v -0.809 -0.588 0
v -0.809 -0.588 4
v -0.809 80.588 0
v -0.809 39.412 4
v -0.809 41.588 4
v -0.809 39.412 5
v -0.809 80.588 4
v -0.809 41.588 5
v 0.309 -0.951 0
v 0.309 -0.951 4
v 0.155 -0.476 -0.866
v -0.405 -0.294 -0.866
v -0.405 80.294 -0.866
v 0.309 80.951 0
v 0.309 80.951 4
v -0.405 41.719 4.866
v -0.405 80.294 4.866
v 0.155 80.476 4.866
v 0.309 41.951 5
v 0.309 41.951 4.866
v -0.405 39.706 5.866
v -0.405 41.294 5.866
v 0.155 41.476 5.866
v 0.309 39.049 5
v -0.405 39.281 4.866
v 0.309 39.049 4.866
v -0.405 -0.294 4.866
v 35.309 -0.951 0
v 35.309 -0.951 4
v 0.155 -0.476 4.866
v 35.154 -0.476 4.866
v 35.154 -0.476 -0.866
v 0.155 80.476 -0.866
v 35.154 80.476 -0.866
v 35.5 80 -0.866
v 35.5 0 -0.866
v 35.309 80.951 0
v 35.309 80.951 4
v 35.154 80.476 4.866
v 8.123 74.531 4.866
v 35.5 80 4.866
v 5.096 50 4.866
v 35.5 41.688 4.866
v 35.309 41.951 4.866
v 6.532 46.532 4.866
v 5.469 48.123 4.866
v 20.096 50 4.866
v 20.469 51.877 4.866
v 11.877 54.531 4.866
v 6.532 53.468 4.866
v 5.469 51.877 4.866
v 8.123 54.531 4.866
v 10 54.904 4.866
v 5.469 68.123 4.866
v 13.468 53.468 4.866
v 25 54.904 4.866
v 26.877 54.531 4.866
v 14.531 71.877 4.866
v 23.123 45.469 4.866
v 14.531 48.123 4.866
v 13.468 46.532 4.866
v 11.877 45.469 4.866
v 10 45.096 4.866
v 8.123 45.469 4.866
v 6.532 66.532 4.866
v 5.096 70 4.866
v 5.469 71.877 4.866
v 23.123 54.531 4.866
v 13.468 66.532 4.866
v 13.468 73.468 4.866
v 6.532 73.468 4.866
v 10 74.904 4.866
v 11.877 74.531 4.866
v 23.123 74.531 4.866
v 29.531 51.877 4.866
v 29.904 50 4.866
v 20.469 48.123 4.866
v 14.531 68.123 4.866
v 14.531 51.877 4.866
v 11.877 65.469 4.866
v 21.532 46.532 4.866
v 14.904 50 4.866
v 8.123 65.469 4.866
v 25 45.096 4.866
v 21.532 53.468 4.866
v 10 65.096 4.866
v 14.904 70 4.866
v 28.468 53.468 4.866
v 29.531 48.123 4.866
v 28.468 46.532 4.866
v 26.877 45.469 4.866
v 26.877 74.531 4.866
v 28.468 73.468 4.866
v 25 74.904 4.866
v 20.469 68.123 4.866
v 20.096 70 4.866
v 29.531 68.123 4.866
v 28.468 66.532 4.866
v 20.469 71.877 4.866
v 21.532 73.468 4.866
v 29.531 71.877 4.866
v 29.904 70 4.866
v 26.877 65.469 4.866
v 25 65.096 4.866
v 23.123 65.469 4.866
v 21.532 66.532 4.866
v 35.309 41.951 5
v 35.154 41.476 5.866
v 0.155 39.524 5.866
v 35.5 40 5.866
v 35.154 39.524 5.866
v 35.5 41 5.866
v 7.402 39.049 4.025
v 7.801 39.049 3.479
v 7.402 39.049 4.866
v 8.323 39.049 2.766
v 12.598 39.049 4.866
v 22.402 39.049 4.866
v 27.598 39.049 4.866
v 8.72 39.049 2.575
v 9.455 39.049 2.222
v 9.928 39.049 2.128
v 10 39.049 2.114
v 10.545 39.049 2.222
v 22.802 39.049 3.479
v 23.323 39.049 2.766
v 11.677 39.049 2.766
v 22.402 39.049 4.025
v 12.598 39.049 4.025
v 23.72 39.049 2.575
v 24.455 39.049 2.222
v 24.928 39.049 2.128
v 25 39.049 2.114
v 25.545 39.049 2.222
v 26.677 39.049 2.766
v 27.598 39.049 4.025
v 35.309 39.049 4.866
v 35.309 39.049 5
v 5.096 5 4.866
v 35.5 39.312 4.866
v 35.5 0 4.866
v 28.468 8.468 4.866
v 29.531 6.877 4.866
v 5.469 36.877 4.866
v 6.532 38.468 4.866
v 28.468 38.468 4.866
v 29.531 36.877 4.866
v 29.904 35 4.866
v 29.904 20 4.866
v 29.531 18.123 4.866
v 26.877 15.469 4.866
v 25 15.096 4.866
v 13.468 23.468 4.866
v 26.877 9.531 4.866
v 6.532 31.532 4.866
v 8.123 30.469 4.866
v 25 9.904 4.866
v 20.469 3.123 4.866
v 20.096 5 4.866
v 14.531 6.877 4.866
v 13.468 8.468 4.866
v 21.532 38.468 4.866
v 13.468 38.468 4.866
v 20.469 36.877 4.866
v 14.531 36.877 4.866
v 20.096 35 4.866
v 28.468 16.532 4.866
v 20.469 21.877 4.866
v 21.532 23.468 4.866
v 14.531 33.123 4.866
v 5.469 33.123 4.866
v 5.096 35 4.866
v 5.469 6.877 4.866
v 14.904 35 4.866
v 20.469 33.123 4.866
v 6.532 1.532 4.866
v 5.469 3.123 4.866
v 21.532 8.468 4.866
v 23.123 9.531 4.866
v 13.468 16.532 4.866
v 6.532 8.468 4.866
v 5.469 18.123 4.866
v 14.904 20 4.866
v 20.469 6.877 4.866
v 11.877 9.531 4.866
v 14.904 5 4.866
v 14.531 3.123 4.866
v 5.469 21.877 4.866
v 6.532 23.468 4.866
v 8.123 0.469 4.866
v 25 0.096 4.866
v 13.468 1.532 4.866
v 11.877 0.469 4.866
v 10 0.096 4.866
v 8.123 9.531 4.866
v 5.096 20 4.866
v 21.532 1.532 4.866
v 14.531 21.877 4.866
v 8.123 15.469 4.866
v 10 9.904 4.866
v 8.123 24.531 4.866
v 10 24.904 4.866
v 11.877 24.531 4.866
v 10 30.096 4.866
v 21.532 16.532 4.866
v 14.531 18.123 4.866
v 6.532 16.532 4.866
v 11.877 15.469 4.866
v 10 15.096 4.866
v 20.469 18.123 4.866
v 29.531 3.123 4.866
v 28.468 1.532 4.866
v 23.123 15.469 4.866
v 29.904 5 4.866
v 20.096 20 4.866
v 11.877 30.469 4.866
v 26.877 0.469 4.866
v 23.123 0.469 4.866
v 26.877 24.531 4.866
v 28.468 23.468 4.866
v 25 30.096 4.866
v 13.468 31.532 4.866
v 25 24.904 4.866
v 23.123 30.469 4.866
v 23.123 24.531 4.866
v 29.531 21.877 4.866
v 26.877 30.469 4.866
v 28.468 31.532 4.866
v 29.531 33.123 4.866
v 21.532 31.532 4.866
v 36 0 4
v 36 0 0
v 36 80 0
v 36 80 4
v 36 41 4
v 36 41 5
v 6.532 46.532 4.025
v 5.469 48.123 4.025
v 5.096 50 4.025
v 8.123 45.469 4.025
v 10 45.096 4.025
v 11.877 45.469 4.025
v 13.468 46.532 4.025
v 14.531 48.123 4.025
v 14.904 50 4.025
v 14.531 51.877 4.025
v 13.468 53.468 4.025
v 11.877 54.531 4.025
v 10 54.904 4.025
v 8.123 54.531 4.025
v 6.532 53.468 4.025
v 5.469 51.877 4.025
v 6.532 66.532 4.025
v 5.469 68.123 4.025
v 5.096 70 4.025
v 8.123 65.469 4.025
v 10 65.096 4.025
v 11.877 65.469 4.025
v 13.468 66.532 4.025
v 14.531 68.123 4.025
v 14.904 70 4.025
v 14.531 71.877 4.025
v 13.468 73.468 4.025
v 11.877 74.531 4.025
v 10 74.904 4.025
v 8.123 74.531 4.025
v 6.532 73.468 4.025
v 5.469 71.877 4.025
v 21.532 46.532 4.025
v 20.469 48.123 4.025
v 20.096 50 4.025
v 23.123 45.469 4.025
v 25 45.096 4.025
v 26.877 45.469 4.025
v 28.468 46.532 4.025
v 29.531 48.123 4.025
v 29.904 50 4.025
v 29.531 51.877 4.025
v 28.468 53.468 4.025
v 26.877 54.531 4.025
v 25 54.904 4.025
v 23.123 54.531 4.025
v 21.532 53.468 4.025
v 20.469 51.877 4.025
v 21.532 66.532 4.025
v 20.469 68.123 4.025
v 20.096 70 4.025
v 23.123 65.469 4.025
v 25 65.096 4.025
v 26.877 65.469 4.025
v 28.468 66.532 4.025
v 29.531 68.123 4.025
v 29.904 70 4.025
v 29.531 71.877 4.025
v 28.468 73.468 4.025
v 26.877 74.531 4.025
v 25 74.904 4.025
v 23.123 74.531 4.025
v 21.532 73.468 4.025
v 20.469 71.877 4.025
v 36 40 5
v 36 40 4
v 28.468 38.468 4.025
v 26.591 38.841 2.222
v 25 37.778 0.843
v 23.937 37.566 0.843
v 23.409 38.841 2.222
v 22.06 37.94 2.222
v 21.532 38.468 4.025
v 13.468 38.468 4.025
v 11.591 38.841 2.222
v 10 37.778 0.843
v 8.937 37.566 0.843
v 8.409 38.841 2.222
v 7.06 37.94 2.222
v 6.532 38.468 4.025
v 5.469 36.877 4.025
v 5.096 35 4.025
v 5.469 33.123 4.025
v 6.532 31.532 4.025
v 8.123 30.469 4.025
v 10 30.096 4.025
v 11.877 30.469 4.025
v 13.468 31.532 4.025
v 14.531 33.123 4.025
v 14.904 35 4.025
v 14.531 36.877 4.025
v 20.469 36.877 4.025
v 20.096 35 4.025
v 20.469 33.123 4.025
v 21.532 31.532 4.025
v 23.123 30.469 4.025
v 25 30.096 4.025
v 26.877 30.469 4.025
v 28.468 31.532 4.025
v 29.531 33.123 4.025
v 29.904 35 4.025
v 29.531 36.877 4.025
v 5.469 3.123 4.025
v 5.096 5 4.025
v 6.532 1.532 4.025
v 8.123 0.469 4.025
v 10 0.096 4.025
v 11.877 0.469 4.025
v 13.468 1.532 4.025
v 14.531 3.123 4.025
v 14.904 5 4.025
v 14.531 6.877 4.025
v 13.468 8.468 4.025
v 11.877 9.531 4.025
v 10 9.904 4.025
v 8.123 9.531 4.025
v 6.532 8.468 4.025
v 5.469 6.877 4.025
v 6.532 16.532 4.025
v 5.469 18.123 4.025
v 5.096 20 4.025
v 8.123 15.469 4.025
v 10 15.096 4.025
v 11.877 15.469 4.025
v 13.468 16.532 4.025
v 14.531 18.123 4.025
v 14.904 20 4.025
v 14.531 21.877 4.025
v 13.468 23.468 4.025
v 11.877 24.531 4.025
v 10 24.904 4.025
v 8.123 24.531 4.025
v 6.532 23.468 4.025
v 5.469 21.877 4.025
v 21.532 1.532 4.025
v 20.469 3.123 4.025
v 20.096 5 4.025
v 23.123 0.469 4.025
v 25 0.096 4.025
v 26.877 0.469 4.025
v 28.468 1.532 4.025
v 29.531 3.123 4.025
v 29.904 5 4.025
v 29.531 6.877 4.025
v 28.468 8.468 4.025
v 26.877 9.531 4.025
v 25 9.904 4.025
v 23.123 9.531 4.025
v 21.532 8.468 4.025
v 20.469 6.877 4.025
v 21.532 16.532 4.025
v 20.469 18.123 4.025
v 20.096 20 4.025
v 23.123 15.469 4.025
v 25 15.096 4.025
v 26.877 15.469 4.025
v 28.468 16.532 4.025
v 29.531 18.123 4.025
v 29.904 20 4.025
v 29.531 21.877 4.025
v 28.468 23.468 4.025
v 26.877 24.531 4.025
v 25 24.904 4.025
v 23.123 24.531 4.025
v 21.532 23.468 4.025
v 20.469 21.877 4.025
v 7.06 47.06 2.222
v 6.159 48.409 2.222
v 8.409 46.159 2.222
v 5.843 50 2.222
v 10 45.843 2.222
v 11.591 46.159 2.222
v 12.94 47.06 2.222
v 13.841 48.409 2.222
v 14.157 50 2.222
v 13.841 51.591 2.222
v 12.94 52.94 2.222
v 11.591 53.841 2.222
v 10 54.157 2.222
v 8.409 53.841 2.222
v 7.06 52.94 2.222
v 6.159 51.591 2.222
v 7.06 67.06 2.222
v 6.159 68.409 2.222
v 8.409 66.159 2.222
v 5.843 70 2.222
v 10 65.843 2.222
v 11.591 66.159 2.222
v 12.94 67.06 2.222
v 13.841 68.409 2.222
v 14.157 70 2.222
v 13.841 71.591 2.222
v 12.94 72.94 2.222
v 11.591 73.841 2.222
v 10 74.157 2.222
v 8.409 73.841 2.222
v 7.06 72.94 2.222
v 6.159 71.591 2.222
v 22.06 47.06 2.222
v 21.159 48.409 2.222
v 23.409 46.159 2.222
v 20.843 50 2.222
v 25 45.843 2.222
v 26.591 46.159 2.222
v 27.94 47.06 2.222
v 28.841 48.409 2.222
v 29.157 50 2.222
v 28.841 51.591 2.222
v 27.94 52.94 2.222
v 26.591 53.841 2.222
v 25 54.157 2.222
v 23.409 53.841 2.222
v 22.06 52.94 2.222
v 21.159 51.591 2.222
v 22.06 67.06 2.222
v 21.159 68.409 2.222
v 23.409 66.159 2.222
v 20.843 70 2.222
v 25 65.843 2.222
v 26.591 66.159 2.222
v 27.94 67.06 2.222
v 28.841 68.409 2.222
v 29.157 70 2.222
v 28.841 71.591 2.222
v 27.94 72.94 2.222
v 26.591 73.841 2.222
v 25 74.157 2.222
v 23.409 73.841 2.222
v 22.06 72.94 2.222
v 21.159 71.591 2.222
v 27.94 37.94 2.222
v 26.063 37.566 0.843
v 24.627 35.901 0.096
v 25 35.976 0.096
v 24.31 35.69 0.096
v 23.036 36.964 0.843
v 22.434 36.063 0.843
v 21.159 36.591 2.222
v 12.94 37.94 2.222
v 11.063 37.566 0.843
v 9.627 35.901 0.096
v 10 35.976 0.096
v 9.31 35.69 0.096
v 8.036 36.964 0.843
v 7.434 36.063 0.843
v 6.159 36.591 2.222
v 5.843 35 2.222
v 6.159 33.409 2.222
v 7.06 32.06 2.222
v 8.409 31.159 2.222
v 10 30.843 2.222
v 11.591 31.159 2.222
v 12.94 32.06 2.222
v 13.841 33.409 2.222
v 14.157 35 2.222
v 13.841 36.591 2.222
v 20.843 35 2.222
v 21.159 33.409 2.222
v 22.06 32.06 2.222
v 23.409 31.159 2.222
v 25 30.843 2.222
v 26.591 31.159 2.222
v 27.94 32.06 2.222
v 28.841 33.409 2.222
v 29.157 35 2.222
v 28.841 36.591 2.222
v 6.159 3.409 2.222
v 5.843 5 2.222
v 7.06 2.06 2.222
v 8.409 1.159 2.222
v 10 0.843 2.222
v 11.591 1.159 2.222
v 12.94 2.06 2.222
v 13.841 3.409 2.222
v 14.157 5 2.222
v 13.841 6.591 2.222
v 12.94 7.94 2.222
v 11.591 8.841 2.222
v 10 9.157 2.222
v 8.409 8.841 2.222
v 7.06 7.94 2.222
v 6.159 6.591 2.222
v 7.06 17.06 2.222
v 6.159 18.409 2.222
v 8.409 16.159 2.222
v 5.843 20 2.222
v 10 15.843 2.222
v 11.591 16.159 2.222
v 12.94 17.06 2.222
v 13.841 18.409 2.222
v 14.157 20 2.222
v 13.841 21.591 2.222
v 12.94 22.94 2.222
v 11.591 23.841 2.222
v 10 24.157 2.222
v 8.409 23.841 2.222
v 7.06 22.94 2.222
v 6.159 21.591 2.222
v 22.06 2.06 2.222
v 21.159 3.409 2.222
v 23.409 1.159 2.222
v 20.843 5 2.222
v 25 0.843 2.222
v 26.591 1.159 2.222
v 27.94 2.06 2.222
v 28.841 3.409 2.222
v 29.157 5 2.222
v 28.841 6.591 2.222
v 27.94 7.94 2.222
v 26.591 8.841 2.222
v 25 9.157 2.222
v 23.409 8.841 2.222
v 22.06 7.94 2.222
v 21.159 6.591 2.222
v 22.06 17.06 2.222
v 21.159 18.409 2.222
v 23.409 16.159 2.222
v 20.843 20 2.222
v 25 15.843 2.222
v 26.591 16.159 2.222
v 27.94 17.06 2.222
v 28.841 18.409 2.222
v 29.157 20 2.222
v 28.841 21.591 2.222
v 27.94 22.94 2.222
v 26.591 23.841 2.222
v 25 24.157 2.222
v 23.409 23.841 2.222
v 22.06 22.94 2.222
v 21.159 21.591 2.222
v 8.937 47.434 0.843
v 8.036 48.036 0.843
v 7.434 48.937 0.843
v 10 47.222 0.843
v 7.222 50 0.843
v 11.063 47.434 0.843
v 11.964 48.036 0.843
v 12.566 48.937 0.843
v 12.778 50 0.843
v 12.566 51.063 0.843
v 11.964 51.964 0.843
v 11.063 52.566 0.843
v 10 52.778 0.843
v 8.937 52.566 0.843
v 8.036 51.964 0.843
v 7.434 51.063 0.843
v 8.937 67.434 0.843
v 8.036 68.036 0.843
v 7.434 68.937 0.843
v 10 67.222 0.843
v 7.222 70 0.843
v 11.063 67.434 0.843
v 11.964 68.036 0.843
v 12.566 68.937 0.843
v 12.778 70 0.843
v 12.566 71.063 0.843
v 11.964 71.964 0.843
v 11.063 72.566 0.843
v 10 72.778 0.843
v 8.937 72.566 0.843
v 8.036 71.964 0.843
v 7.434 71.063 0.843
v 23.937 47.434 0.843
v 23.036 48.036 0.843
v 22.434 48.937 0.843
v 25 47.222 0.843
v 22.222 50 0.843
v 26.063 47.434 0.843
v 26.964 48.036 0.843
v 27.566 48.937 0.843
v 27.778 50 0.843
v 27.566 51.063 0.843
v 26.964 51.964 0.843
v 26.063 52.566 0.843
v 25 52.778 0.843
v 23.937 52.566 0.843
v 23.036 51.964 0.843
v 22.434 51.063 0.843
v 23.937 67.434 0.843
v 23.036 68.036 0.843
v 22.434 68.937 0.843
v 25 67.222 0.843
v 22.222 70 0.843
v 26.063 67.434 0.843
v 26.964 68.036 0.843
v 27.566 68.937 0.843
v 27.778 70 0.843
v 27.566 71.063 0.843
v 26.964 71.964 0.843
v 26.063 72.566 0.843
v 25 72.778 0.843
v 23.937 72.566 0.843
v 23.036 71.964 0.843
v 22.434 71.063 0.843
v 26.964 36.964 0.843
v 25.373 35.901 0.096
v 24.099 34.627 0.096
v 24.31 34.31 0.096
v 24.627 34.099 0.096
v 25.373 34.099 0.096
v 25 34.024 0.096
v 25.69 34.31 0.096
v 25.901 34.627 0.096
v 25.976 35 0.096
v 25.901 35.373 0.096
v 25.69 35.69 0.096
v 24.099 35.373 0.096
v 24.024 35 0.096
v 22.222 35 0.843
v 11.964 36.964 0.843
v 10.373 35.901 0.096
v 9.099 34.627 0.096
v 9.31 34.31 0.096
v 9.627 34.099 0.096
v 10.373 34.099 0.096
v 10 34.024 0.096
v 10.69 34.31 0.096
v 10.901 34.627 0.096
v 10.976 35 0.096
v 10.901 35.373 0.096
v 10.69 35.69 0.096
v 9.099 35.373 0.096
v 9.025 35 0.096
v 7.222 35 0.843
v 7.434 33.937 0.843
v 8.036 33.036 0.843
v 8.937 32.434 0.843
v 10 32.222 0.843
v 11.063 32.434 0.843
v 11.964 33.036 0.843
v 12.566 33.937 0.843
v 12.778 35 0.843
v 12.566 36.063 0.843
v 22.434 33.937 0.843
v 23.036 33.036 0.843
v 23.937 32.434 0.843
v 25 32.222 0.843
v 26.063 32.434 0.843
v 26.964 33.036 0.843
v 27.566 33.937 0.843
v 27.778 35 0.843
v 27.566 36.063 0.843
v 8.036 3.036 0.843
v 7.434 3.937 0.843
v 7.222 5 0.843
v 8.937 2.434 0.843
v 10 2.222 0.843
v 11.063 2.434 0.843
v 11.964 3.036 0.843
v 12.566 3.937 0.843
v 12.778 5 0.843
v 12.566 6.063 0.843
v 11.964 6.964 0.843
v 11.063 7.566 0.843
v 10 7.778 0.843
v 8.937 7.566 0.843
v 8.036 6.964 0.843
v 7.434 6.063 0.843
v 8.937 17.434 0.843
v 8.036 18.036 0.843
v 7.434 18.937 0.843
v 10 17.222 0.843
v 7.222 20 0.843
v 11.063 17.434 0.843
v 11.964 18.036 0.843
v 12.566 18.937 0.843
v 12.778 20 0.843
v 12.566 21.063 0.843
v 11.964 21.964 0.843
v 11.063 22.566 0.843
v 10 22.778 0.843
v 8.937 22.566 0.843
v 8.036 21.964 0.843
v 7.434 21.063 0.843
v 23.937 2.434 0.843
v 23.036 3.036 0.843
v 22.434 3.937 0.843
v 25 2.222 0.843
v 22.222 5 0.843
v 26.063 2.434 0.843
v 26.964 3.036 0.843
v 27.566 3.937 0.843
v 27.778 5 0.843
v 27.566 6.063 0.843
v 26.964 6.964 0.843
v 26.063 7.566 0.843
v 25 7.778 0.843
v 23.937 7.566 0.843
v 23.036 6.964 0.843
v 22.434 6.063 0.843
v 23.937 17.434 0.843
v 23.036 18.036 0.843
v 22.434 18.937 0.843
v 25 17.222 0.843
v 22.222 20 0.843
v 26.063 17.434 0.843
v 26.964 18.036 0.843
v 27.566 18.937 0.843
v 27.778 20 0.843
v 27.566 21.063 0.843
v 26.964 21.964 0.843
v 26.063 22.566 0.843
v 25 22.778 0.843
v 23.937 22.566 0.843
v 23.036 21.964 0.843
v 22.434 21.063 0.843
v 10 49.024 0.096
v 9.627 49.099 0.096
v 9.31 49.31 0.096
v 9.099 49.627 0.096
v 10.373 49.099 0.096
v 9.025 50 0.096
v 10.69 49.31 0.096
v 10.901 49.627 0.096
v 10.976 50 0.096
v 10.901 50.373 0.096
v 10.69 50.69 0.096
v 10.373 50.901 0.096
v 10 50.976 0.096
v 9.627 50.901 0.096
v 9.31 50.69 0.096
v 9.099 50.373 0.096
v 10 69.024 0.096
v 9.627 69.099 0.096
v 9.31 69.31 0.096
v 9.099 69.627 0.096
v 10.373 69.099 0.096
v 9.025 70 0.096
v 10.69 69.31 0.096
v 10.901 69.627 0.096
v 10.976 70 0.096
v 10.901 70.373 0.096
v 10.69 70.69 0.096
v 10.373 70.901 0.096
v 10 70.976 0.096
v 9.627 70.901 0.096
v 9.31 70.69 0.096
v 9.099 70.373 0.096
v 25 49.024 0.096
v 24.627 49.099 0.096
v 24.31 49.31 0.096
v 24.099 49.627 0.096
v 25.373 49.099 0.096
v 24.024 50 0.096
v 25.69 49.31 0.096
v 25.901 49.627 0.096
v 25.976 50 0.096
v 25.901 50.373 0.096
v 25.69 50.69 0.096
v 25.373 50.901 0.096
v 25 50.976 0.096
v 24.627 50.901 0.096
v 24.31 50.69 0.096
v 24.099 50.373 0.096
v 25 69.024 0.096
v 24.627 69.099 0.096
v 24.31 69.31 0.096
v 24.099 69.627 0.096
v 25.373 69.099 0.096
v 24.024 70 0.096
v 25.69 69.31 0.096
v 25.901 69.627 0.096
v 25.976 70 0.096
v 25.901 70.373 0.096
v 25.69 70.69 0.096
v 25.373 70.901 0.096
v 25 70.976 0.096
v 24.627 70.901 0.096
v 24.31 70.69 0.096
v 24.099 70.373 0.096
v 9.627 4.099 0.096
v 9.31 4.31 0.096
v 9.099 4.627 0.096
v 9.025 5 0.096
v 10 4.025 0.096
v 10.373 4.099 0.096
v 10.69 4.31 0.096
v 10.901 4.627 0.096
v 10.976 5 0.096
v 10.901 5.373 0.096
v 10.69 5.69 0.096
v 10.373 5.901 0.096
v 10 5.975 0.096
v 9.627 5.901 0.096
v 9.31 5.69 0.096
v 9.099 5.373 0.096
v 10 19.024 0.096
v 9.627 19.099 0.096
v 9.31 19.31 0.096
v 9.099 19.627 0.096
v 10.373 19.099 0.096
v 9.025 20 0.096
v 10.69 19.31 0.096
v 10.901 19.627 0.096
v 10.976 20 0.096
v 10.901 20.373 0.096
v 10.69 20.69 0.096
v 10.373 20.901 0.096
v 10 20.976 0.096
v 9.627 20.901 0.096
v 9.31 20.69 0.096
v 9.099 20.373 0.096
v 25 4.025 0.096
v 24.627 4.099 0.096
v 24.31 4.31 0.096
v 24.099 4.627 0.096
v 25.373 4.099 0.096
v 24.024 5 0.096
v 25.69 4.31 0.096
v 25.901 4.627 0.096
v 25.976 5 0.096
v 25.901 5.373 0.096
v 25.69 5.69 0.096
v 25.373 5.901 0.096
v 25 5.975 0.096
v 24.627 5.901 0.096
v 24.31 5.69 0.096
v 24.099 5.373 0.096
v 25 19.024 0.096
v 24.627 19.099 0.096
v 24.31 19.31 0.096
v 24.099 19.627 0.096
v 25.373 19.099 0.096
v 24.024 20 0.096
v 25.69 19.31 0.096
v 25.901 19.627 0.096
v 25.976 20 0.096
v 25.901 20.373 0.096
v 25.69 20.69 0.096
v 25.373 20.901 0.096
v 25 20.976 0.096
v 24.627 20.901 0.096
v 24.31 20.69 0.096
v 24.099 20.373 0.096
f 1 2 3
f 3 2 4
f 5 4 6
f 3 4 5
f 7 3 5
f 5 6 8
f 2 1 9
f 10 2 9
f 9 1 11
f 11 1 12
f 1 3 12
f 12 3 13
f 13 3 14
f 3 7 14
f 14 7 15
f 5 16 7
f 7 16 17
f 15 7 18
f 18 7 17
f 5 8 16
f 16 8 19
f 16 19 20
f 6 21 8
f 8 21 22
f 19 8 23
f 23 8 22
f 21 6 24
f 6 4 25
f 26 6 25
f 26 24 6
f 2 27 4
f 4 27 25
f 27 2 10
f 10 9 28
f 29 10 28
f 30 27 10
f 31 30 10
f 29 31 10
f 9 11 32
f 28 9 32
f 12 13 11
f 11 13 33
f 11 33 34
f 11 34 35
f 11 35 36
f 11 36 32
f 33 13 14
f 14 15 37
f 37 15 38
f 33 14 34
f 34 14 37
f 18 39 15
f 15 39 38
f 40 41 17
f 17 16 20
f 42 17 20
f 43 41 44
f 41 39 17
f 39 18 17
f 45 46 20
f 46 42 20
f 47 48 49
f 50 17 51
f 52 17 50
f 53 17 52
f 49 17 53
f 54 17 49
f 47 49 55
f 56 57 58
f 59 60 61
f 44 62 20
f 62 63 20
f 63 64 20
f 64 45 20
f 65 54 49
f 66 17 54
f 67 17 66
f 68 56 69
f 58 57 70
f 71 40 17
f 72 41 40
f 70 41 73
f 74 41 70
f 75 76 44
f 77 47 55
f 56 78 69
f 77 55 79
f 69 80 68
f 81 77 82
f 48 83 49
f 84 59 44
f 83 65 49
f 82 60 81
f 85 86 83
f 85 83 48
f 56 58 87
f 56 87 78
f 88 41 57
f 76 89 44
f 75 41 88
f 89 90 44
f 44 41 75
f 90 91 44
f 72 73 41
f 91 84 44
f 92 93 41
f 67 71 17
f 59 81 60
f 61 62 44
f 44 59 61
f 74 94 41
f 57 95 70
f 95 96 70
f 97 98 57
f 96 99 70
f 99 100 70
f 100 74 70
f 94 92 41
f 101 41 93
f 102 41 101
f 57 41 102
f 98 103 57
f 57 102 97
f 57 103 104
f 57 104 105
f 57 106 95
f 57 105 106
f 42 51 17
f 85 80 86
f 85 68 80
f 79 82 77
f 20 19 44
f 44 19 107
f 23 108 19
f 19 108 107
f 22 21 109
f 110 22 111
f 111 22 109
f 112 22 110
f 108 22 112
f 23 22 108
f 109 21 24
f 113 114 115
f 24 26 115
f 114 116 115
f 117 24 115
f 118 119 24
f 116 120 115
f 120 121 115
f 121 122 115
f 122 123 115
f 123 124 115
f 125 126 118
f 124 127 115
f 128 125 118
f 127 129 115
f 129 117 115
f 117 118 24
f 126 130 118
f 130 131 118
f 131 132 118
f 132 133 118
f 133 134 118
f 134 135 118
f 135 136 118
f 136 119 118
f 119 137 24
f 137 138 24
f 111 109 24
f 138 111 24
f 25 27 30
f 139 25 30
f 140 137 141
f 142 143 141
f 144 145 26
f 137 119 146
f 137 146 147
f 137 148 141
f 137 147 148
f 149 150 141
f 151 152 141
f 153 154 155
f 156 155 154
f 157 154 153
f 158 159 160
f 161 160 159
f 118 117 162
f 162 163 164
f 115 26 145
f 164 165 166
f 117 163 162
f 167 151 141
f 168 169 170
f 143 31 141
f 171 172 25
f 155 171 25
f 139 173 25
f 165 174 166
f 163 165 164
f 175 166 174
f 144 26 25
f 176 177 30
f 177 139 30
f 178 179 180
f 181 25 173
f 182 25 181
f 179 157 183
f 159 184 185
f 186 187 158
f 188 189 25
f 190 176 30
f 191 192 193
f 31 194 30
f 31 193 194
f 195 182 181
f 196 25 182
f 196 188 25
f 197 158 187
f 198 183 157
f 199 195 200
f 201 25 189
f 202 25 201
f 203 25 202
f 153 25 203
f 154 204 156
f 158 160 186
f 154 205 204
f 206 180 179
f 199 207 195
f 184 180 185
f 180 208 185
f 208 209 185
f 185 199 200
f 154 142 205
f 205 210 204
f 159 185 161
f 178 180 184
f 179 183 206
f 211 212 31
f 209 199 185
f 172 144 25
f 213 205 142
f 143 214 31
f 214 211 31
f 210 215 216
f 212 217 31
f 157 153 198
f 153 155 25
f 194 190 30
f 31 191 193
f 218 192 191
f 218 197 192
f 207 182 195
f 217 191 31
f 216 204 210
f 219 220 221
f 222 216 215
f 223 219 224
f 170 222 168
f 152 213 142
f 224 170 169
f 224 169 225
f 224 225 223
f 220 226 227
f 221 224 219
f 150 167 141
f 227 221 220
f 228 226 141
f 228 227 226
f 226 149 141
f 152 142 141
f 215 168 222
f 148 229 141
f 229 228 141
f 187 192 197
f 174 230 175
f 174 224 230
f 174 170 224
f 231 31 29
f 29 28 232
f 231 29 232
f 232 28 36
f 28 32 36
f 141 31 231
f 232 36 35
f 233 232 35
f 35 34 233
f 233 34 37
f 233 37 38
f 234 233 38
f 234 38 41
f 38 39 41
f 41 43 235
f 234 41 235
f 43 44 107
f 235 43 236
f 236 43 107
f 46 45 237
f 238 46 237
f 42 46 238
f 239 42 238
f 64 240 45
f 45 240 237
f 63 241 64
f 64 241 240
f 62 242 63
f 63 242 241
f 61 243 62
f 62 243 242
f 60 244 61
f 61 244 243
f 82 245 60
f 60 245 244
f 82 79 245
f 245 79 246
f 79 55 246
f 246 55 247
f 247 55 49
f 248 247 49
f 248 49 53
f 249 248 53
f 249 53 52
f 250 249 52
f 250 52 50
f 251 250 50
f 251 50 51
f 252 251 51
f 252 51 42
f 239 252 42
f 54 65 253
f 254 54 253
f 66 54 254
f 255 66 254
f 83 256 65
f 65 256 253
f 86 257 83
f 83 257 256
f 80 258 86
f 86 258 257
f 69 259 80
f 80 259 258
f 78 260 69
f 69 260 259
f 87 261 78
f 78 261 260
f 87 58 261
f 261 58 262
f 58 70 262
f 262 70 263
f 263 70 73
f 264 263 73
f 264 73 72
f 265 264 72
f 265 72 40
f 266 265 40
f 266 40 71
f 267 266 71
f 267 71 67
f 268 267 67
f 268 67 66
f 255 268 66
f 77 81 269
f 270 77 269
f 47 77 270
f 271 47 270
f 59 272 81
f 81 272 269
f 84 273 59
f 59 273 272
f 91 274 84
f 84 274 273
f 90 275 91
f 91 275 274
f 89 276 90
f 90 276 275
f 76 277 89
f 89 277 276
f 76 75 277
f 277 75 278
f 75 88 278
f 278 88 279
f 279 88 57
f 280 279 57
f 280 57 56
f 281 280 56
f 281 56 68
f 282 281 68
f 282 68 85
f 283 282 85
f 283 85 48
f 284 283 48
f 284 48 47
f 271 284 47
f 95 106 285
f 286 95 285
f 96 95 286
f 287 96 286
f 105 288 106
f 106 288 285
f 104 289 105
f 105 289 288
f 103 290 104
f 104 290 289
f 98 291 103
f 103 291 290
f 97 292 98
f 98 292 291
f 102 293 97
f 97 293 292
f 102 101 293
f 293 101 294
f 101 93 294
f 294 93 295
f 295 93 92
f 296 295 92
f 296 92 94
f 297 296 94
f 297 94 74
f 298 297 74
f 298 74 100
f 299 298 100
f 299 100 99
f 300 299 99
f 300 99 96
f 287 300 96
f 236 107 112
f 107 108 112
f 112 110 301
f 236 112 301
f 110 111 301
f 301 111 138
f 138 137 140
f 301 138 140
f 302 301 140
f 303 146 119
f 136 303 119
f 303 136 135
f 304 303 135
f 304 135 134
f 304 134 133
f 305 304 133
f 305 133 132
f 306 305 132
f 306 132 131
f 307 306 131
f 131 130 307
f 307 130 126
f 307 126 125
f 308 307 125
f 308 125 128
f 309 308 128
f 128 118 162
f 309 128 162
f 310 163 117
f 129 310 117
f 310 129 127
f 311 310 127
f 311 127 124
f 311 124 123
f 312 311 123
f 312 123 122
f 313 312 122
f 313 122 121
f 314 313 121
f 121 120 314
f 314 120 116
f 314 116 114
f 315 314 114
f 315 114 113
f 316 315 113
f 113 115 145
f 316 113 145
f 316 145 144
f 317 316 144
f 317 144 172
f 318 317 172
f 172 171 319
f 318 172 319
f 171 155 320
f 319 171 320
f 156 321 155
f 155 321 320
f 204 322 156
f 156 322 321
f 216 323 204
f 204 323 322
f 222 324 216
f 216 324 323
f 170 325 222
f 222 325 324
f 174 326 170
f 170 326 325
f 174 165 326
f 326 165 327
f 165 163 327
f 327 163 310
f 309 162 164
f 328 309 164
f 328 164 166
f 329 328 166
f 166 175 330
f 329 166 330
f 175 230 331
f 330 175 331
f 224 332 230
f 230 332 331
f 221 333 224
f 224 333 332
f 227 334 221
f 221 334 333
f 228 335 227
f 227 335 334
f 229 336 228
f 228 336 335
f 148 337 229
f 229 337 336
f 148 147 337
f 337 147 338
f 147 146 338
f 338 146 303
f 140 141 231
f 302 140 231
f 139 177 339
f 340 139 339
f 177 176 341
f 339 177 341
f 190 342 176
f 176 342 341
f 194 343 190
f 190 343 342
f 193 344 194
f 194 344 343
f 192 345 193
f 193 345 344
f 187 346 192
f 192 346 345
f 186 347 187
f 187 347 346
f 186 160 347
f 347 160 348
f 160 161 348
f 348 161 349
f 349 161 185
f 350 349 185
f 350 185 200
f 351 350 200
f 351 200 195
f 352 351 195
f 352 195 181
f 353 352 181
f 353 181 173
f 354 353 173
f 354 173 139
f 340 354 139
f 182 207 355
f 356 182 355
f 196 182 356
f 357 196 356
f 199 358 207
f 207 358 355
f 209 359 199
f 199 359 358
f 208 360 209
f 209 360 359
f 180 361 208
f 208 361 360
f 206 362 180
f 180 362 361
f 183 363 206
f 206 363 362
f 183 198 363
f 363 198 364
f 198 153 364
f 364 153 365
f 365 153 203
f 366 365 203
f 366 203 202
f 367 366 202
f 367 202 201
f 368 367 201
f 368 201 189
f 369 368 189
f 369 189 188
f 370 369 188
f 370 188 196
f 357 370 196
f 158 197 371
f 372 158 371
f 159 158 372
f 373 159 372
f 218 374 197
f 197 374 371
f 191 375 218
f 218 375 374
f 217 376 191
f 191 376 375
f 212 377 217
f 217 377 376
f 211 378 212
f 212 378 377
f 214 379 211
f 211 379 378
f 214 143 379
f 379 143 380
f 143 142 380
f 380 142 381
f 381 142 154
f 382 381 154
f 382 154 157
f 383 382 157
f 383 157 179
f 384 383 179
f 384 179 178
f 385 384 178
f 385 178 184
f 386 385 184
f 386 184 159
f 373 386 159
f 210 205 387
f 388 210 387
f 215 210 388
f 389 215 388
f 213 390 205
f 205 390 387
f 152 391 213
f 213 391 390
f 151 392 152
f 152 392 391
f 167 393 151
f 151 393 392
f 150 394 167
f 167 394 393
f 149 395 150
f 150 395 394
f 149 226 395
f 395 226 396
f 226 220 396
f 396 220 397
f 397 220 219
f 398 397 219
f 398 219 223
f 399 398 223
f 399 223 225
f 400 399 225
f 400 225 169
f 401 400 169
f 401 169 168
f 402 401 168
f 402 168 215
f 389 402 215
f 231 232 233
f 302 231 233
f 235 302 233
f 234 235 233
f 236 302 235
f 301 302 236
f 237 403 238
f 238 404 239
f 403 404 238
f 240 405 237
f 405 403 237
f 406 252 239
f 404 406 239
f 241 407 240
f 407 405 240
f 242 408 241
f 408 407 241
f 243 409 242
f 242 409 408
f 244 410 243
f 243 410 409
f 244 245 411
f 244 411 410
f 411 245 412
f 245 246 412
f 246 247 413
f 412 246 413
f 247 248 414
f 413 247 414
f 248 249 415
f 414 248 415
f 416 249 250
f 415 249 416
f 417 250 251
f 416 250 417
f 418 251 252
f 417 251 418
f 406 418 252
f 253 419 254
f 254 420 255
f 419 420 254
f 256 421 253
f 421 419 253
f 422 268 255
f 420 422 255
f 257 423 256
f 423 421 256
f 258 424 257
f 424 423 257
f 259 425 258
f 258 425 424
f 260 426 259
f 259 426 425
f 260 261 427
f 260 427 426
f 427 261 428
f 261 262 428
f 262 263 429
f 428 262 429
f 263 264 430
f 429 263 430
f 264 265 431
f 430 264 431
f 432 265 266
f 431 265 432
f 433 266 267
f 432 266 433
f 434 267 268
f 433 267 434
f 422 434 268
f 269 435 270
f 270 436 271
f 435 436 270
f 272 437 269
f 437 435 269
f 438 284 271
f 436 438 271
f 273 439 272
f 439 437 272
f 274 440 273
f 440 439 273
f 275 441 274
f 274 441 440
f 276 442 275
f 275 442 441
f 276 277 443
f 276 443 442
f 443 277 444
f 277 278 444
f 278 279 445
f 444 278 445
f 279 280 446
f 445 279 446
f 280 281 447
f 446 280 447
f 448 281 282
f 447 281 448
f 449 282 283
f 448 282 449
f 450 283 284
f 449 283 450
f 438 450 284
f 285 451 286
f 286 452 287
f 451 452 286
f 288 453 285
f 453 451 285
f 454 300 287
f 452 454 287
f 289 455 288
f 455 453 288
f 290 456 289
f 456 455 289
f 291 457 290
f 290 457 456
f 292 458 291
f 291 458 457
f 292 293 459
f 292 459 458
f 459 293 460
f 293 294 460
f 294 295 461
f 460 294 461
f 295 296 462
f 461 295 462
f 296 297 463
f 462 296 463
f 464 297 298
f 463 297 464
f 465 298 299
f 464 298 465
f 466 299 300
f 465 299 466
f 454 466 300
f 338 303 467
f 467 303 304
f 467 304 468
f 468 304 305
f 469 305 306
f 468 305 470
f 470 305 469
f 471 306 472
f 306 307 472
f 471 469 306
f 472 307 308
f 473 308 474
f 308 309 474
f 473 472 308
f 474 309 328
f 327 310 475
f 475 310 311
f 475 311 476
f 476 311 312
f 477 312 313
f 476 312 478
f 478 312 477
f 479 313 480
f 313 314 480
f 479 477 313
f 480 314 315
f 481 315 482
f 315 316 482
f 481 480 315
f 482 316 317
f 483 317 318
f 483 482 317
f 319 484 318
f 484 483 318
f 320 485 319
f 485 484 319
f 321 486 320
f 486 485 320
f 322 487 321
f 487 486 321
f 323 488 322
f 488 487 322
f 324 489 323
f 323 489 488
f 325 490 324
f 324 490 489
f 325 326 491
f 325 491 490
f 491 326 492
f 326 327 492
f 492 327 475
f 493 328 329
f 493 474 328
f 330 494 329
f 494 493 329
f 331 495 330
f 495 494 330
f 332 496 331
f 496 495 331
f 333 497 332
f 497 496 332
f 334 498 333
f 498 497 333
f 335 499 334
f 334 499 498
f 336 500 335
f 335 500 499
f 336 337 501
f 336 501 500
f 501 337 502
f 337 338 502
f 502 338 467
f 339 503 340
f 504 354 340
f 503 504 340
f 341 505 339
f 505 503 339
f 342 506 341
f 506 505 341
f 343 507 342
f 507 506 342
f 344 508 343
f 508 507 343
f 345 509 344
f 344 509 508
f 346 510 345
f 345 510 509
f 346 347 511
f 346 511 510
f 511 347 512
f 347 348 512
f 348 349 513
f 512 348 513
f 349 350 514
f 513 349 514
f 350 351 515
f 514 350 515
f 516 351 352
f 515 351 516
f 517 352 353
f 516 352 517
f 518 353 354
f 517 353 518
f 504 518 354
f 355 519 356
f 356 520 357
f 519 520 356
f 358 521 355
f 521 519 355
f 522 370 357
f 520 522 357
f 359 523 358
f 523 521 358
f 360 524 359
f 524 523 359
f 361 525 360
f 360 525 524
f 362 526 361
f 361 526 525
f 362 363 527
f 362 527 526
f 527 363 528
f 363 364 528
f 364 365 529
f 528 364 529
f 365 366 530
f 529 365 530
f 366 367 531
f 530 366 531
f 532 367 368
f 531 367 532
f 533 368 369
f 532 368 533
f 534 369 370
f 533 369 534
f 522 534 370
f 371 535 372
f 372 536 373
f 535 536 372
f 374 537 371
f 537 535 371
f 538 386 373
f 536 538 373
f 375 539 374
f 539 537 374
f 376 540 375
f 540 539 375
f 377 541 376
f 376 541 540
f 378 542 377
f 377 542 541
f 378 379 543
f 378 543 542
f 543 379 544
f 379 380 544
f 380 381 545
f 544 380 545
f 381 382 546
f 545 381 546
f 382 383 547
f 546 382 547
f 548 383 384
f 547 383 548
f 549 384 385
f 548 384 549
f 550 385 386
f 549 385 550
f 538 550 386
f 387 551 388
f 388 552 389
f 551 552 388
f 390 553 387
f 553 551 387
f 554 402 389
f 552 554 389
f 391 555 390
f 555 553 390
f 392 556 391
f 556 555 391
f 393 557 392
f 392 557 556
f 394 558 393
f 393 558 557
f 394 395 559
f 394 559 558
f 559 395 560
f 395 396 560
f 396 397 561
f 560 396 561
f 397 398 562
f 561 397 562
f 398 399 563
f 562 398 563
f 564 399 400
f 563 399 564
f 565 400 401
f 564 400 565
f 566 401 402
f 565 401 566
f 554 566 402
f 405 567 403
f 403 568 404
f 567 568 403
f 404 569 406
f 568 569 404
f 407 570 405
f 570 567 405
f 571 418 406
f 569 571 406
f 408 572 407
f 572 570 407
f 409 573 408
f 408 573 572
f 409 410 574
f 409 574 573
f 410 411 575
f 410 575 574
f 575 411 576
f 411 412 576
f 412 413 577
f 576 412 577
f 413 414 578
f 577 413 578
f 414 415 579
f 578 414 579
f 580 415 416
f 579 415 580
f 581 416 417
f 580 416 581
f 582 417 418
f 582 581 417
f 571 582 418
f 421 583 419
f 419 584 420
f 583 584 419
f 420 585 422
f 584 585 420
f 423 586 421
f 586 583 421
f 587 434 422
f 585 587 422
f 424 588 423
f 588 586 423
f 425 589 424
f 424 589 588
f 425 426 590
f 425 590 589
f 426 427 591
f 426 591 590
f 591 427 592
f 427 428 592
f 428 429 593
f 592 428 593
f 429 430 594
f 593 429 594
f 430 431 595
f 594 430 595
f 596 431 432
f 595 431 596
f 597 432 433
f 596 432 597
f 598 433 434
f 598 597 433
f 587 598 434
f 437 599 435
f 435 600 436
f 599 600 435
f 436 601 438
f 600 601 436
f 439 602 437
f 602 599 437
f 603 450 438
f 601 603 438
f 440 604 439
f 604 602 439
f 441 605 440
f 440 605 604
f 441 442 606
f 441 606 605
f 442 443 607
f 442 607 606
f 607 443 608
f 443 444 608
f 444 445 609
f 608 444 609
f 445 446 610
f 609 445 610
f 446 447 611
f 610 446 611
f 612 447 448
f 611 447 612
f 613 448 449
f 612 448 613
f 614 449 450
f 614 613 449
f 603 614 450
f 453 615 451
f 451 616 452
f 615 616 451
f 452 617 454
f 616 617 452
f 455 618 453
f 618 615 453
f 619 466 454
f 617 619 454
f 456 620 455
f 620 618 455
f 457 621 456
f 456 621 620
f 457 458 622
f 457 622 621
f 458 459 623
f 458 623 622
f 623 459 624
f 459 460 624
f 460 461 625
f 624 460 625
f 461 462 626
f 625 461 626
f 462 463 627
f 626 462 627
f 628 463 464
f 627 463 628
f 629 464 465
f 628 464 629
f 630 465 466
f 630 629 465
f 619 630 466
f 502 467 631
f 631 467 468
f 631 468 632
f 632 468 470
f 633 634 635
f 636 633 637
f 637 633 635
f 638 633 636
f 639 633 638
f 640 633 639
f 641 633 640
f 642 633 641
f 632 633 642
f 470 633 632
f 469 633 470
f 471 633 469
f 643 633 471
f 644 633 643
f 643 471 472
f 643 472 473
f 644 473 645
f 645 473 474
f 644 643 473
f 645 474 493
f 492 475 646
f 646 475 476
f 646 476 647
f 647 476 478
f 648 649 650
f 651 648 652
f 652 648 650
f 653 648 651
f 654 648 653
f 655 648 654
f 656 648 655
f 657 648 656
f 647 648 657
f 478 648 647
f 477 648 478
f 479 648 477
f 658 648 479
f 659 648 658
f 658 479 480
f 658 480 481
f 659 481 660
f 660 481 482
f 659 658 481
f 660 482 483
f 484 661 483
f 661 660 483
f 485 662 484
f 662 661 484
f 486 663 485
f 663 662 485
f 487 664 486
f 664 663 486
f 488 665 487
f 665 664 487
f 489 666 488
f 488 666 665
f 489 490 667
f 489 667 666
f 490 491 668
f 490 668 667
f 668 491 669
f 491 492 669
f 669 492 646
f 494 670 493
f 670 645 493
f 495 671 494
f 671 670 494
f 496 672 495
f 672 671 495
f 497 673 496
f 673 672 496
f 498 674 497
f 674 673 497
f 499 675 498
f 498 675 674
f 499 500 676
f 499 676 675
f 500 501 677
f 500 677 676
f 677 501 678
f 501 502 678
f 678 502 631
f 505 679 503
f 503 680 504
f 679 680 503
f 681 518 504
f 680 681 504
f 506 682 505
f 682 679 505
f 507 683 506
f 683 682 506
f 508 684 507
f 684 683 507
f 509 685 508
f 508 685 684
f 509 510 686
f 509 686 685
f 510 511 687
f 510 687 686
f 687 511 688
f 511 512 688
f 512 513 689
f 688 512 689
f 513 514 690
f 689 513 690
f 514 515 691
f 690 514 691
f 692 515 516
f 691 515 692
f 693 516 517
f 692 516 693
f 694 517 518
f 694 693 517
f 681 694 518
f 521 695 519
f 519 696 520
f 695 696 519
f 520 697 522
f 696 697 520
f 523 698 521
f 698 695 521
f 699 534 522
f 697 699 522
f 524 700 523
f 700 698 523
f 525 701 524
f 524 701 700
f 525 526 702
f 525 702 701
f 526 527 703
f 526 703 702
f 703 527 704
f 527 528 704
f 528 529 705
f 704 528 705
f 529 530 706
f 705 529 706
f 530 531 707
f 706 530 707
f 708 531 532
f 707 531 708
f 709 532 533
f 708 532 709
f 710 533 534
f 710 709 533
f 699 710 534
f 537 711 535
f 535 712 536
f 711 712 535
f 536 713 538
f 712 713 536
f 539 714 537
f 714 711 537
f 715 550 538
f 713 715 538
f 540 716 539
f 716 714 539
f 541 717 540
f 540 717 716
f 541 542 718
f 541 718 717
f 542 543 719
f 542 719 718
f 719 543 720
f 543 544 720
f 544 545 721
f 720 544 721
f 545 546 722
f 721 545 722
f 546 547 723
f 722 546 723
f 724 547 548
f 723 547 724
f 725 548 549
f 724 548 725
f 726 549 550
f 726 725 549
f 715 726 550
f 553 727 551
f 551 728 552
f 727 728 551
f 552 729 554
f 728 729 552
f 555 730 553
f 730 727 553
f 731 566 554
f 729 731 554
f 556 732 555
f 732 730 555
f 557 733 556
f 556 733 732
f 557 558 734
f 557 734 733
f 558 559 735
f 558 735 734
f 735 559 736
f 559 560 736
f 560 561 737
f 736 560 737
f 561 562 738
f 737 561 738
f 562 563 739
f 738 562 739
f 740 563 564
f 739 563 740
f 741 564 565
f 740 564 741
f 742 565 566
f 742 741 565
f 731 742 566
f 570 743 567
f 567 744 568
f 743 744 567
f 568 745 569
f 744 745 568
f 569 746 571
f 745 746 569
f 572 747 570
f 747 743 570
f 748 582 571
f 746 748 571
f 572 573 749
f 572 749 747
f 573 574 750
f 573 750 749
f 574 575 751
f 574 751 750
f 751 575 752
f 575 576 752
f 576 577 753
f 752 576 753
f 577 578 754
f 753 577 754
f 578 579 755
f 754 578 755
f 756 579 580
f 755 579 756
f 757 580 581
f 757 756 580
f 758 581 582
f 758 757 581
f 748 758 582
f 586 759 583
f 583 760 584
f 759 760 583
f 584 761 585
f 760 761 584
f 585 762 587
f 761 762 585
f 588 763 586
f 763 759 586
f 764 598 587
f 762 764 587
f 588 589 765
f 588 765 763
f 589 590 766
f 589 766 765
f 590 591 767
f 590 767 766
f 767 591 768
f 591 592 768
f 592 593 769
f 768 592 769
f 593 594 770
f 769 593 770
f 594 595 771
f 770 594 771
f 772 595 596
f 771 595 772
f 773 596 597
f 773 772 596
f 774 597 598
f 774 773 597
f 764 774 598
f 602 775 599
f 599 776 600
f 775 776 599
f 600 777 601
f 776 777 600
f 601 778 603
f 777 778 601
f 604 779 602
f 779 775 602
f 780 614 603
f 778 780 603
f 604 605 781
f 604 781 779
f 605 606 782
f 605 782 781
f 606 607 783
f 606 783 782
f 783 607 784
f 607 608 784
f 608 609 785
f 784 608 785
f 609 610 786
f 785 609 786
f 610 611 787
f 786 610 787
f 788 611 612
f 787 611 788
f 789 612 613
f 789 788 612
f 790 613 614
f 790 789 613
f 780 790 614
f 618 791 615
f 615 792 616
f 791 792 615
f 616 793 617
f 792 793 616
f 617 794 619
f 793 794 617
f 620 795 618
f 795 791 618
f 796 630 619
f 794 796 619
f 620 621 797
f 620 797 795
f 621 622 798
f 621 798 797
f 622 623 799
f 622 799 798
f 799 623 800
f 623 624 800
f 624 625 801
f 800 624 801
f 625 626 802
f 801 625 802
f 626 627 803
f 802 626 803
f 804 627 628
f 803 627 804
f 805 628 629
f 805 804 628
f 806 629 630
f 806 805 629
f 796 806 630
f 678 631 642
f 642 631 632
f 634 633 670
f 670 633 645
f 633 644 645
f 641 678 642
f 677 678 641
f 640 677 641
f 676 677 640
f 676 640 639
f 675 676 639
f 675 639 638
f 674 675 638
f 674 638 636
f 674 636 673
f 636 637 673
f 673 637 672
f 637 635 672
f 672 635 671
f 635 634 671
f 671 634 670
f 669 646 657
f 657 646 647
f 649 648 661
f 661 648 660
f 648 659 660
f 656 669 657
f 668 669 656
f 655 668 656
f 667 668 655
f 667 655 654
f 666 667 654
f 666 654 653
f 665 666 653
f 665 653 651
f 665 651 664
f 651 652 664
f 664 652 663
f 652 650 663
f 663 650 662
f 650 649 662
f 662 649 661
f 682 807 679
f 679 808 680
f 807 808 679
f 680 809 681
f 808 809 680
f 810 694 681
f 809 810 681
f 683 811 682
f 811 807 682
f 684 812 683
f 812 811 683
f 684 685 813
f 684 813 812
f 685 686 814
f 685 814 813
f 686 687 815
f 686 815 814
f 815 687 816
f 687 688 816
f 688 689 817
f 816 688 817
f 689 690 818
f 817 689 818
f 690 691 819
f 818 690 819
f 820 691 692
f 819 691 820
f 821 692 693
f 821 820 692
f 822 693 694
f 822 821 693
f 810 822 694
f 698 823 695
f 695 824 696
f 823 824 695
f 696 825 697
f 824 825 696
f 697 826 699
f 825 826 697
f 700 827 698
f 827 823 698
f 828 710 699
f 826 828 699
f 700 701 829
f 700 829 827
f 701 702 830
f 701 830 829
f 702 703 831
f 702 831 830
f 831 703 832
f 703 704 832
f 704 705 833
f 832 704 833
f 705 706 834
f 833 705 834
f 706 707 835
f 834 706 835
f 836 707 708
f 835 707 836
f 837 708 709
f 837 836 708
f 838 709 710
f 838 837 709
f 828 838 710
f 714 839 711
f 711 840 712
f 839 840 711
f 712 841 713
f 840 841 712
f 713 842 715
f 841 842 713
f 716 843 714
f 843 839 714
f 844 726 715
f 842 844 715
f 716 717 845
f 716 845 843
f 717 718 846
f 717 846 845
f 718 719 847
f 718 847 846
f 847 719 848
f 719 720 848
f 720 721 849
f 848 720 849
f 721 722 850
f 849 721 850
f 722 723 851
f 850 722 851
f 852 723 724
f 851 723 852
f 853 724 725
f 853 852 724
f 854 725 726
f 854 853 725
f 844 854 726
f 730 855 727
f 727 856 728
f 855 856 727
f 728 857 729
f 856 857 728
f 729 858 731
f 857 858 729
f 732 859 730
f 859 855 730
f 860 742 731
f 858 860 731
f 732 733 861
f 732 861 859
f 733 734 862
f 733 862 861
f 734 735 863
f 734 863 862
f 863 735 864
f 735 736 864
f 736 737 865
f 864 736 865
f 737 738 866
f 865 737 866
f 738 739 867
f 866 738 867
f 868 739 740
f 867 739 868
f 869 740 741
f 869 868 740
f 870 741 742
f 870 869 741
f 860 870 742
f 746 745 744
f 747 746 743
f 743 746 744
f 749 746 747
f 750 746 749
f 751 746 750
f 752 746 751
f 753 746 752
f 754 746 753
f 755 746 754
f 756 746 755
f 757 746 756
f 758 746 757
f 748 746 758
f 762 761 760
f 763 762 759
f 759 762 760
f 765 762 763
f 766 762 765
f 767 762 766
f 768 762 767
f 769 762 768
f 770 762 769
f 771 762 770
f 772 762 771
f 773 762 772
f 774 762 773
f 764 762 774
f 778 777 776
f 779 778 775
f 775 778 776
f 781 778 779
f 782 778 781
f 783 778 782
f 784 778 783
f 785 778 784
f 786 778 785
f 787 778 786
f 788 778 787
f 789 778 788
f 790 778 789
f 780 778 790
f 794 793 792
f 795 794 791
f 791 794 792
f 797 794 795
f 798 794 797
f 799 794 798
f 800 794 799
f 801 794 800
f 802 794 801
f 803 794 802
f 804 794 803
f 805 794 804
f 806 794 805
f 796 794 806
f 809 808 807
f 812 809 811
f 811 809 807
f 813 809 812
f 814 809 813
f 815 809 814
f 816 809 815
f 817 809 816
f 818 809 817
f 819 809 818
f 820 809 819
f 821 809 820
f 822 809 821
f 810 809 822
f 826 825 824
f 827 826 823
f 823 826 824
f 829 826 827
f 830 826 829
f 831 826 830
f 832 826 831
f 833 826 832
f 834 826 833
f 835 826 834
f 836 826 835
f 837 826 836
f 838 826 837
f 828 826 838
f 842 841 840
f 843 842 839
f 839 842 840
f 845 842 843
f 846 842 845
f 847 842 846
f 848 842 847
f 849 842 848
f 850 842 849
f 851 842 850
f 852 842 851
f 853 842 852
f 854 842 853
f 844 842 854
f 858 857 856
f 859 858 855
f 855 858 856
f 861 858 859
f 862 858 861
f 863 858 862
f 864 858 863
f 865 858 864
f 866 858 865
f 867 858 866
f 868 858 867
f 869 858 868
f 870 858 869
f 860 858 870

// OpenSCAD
// Loguncov Maxim 13.12.13


//$fn=128;


translate([0,40,0])
minkowski()
{cube([35,1,5]);
sphere(1);
}

difference() {

//основа
minkowski()
{cube([35,80,4]);
sphere(1);
}

//отверстия
translate([10,5,5])sphere(5);
translate([25,5,5])sphere(5);
translate([10,20,5])sphere(5);
translate([25,20,5])sphere(5);
translate([10,35,5])sphere(5);
translate([25,35,5])sphere(5);

translate([10,70,5])sphere(5);
translate([25,50,5])sphere(5);
translate([25,70,5])sphere(5);
translate([10,50,5])sphere(5);

}
